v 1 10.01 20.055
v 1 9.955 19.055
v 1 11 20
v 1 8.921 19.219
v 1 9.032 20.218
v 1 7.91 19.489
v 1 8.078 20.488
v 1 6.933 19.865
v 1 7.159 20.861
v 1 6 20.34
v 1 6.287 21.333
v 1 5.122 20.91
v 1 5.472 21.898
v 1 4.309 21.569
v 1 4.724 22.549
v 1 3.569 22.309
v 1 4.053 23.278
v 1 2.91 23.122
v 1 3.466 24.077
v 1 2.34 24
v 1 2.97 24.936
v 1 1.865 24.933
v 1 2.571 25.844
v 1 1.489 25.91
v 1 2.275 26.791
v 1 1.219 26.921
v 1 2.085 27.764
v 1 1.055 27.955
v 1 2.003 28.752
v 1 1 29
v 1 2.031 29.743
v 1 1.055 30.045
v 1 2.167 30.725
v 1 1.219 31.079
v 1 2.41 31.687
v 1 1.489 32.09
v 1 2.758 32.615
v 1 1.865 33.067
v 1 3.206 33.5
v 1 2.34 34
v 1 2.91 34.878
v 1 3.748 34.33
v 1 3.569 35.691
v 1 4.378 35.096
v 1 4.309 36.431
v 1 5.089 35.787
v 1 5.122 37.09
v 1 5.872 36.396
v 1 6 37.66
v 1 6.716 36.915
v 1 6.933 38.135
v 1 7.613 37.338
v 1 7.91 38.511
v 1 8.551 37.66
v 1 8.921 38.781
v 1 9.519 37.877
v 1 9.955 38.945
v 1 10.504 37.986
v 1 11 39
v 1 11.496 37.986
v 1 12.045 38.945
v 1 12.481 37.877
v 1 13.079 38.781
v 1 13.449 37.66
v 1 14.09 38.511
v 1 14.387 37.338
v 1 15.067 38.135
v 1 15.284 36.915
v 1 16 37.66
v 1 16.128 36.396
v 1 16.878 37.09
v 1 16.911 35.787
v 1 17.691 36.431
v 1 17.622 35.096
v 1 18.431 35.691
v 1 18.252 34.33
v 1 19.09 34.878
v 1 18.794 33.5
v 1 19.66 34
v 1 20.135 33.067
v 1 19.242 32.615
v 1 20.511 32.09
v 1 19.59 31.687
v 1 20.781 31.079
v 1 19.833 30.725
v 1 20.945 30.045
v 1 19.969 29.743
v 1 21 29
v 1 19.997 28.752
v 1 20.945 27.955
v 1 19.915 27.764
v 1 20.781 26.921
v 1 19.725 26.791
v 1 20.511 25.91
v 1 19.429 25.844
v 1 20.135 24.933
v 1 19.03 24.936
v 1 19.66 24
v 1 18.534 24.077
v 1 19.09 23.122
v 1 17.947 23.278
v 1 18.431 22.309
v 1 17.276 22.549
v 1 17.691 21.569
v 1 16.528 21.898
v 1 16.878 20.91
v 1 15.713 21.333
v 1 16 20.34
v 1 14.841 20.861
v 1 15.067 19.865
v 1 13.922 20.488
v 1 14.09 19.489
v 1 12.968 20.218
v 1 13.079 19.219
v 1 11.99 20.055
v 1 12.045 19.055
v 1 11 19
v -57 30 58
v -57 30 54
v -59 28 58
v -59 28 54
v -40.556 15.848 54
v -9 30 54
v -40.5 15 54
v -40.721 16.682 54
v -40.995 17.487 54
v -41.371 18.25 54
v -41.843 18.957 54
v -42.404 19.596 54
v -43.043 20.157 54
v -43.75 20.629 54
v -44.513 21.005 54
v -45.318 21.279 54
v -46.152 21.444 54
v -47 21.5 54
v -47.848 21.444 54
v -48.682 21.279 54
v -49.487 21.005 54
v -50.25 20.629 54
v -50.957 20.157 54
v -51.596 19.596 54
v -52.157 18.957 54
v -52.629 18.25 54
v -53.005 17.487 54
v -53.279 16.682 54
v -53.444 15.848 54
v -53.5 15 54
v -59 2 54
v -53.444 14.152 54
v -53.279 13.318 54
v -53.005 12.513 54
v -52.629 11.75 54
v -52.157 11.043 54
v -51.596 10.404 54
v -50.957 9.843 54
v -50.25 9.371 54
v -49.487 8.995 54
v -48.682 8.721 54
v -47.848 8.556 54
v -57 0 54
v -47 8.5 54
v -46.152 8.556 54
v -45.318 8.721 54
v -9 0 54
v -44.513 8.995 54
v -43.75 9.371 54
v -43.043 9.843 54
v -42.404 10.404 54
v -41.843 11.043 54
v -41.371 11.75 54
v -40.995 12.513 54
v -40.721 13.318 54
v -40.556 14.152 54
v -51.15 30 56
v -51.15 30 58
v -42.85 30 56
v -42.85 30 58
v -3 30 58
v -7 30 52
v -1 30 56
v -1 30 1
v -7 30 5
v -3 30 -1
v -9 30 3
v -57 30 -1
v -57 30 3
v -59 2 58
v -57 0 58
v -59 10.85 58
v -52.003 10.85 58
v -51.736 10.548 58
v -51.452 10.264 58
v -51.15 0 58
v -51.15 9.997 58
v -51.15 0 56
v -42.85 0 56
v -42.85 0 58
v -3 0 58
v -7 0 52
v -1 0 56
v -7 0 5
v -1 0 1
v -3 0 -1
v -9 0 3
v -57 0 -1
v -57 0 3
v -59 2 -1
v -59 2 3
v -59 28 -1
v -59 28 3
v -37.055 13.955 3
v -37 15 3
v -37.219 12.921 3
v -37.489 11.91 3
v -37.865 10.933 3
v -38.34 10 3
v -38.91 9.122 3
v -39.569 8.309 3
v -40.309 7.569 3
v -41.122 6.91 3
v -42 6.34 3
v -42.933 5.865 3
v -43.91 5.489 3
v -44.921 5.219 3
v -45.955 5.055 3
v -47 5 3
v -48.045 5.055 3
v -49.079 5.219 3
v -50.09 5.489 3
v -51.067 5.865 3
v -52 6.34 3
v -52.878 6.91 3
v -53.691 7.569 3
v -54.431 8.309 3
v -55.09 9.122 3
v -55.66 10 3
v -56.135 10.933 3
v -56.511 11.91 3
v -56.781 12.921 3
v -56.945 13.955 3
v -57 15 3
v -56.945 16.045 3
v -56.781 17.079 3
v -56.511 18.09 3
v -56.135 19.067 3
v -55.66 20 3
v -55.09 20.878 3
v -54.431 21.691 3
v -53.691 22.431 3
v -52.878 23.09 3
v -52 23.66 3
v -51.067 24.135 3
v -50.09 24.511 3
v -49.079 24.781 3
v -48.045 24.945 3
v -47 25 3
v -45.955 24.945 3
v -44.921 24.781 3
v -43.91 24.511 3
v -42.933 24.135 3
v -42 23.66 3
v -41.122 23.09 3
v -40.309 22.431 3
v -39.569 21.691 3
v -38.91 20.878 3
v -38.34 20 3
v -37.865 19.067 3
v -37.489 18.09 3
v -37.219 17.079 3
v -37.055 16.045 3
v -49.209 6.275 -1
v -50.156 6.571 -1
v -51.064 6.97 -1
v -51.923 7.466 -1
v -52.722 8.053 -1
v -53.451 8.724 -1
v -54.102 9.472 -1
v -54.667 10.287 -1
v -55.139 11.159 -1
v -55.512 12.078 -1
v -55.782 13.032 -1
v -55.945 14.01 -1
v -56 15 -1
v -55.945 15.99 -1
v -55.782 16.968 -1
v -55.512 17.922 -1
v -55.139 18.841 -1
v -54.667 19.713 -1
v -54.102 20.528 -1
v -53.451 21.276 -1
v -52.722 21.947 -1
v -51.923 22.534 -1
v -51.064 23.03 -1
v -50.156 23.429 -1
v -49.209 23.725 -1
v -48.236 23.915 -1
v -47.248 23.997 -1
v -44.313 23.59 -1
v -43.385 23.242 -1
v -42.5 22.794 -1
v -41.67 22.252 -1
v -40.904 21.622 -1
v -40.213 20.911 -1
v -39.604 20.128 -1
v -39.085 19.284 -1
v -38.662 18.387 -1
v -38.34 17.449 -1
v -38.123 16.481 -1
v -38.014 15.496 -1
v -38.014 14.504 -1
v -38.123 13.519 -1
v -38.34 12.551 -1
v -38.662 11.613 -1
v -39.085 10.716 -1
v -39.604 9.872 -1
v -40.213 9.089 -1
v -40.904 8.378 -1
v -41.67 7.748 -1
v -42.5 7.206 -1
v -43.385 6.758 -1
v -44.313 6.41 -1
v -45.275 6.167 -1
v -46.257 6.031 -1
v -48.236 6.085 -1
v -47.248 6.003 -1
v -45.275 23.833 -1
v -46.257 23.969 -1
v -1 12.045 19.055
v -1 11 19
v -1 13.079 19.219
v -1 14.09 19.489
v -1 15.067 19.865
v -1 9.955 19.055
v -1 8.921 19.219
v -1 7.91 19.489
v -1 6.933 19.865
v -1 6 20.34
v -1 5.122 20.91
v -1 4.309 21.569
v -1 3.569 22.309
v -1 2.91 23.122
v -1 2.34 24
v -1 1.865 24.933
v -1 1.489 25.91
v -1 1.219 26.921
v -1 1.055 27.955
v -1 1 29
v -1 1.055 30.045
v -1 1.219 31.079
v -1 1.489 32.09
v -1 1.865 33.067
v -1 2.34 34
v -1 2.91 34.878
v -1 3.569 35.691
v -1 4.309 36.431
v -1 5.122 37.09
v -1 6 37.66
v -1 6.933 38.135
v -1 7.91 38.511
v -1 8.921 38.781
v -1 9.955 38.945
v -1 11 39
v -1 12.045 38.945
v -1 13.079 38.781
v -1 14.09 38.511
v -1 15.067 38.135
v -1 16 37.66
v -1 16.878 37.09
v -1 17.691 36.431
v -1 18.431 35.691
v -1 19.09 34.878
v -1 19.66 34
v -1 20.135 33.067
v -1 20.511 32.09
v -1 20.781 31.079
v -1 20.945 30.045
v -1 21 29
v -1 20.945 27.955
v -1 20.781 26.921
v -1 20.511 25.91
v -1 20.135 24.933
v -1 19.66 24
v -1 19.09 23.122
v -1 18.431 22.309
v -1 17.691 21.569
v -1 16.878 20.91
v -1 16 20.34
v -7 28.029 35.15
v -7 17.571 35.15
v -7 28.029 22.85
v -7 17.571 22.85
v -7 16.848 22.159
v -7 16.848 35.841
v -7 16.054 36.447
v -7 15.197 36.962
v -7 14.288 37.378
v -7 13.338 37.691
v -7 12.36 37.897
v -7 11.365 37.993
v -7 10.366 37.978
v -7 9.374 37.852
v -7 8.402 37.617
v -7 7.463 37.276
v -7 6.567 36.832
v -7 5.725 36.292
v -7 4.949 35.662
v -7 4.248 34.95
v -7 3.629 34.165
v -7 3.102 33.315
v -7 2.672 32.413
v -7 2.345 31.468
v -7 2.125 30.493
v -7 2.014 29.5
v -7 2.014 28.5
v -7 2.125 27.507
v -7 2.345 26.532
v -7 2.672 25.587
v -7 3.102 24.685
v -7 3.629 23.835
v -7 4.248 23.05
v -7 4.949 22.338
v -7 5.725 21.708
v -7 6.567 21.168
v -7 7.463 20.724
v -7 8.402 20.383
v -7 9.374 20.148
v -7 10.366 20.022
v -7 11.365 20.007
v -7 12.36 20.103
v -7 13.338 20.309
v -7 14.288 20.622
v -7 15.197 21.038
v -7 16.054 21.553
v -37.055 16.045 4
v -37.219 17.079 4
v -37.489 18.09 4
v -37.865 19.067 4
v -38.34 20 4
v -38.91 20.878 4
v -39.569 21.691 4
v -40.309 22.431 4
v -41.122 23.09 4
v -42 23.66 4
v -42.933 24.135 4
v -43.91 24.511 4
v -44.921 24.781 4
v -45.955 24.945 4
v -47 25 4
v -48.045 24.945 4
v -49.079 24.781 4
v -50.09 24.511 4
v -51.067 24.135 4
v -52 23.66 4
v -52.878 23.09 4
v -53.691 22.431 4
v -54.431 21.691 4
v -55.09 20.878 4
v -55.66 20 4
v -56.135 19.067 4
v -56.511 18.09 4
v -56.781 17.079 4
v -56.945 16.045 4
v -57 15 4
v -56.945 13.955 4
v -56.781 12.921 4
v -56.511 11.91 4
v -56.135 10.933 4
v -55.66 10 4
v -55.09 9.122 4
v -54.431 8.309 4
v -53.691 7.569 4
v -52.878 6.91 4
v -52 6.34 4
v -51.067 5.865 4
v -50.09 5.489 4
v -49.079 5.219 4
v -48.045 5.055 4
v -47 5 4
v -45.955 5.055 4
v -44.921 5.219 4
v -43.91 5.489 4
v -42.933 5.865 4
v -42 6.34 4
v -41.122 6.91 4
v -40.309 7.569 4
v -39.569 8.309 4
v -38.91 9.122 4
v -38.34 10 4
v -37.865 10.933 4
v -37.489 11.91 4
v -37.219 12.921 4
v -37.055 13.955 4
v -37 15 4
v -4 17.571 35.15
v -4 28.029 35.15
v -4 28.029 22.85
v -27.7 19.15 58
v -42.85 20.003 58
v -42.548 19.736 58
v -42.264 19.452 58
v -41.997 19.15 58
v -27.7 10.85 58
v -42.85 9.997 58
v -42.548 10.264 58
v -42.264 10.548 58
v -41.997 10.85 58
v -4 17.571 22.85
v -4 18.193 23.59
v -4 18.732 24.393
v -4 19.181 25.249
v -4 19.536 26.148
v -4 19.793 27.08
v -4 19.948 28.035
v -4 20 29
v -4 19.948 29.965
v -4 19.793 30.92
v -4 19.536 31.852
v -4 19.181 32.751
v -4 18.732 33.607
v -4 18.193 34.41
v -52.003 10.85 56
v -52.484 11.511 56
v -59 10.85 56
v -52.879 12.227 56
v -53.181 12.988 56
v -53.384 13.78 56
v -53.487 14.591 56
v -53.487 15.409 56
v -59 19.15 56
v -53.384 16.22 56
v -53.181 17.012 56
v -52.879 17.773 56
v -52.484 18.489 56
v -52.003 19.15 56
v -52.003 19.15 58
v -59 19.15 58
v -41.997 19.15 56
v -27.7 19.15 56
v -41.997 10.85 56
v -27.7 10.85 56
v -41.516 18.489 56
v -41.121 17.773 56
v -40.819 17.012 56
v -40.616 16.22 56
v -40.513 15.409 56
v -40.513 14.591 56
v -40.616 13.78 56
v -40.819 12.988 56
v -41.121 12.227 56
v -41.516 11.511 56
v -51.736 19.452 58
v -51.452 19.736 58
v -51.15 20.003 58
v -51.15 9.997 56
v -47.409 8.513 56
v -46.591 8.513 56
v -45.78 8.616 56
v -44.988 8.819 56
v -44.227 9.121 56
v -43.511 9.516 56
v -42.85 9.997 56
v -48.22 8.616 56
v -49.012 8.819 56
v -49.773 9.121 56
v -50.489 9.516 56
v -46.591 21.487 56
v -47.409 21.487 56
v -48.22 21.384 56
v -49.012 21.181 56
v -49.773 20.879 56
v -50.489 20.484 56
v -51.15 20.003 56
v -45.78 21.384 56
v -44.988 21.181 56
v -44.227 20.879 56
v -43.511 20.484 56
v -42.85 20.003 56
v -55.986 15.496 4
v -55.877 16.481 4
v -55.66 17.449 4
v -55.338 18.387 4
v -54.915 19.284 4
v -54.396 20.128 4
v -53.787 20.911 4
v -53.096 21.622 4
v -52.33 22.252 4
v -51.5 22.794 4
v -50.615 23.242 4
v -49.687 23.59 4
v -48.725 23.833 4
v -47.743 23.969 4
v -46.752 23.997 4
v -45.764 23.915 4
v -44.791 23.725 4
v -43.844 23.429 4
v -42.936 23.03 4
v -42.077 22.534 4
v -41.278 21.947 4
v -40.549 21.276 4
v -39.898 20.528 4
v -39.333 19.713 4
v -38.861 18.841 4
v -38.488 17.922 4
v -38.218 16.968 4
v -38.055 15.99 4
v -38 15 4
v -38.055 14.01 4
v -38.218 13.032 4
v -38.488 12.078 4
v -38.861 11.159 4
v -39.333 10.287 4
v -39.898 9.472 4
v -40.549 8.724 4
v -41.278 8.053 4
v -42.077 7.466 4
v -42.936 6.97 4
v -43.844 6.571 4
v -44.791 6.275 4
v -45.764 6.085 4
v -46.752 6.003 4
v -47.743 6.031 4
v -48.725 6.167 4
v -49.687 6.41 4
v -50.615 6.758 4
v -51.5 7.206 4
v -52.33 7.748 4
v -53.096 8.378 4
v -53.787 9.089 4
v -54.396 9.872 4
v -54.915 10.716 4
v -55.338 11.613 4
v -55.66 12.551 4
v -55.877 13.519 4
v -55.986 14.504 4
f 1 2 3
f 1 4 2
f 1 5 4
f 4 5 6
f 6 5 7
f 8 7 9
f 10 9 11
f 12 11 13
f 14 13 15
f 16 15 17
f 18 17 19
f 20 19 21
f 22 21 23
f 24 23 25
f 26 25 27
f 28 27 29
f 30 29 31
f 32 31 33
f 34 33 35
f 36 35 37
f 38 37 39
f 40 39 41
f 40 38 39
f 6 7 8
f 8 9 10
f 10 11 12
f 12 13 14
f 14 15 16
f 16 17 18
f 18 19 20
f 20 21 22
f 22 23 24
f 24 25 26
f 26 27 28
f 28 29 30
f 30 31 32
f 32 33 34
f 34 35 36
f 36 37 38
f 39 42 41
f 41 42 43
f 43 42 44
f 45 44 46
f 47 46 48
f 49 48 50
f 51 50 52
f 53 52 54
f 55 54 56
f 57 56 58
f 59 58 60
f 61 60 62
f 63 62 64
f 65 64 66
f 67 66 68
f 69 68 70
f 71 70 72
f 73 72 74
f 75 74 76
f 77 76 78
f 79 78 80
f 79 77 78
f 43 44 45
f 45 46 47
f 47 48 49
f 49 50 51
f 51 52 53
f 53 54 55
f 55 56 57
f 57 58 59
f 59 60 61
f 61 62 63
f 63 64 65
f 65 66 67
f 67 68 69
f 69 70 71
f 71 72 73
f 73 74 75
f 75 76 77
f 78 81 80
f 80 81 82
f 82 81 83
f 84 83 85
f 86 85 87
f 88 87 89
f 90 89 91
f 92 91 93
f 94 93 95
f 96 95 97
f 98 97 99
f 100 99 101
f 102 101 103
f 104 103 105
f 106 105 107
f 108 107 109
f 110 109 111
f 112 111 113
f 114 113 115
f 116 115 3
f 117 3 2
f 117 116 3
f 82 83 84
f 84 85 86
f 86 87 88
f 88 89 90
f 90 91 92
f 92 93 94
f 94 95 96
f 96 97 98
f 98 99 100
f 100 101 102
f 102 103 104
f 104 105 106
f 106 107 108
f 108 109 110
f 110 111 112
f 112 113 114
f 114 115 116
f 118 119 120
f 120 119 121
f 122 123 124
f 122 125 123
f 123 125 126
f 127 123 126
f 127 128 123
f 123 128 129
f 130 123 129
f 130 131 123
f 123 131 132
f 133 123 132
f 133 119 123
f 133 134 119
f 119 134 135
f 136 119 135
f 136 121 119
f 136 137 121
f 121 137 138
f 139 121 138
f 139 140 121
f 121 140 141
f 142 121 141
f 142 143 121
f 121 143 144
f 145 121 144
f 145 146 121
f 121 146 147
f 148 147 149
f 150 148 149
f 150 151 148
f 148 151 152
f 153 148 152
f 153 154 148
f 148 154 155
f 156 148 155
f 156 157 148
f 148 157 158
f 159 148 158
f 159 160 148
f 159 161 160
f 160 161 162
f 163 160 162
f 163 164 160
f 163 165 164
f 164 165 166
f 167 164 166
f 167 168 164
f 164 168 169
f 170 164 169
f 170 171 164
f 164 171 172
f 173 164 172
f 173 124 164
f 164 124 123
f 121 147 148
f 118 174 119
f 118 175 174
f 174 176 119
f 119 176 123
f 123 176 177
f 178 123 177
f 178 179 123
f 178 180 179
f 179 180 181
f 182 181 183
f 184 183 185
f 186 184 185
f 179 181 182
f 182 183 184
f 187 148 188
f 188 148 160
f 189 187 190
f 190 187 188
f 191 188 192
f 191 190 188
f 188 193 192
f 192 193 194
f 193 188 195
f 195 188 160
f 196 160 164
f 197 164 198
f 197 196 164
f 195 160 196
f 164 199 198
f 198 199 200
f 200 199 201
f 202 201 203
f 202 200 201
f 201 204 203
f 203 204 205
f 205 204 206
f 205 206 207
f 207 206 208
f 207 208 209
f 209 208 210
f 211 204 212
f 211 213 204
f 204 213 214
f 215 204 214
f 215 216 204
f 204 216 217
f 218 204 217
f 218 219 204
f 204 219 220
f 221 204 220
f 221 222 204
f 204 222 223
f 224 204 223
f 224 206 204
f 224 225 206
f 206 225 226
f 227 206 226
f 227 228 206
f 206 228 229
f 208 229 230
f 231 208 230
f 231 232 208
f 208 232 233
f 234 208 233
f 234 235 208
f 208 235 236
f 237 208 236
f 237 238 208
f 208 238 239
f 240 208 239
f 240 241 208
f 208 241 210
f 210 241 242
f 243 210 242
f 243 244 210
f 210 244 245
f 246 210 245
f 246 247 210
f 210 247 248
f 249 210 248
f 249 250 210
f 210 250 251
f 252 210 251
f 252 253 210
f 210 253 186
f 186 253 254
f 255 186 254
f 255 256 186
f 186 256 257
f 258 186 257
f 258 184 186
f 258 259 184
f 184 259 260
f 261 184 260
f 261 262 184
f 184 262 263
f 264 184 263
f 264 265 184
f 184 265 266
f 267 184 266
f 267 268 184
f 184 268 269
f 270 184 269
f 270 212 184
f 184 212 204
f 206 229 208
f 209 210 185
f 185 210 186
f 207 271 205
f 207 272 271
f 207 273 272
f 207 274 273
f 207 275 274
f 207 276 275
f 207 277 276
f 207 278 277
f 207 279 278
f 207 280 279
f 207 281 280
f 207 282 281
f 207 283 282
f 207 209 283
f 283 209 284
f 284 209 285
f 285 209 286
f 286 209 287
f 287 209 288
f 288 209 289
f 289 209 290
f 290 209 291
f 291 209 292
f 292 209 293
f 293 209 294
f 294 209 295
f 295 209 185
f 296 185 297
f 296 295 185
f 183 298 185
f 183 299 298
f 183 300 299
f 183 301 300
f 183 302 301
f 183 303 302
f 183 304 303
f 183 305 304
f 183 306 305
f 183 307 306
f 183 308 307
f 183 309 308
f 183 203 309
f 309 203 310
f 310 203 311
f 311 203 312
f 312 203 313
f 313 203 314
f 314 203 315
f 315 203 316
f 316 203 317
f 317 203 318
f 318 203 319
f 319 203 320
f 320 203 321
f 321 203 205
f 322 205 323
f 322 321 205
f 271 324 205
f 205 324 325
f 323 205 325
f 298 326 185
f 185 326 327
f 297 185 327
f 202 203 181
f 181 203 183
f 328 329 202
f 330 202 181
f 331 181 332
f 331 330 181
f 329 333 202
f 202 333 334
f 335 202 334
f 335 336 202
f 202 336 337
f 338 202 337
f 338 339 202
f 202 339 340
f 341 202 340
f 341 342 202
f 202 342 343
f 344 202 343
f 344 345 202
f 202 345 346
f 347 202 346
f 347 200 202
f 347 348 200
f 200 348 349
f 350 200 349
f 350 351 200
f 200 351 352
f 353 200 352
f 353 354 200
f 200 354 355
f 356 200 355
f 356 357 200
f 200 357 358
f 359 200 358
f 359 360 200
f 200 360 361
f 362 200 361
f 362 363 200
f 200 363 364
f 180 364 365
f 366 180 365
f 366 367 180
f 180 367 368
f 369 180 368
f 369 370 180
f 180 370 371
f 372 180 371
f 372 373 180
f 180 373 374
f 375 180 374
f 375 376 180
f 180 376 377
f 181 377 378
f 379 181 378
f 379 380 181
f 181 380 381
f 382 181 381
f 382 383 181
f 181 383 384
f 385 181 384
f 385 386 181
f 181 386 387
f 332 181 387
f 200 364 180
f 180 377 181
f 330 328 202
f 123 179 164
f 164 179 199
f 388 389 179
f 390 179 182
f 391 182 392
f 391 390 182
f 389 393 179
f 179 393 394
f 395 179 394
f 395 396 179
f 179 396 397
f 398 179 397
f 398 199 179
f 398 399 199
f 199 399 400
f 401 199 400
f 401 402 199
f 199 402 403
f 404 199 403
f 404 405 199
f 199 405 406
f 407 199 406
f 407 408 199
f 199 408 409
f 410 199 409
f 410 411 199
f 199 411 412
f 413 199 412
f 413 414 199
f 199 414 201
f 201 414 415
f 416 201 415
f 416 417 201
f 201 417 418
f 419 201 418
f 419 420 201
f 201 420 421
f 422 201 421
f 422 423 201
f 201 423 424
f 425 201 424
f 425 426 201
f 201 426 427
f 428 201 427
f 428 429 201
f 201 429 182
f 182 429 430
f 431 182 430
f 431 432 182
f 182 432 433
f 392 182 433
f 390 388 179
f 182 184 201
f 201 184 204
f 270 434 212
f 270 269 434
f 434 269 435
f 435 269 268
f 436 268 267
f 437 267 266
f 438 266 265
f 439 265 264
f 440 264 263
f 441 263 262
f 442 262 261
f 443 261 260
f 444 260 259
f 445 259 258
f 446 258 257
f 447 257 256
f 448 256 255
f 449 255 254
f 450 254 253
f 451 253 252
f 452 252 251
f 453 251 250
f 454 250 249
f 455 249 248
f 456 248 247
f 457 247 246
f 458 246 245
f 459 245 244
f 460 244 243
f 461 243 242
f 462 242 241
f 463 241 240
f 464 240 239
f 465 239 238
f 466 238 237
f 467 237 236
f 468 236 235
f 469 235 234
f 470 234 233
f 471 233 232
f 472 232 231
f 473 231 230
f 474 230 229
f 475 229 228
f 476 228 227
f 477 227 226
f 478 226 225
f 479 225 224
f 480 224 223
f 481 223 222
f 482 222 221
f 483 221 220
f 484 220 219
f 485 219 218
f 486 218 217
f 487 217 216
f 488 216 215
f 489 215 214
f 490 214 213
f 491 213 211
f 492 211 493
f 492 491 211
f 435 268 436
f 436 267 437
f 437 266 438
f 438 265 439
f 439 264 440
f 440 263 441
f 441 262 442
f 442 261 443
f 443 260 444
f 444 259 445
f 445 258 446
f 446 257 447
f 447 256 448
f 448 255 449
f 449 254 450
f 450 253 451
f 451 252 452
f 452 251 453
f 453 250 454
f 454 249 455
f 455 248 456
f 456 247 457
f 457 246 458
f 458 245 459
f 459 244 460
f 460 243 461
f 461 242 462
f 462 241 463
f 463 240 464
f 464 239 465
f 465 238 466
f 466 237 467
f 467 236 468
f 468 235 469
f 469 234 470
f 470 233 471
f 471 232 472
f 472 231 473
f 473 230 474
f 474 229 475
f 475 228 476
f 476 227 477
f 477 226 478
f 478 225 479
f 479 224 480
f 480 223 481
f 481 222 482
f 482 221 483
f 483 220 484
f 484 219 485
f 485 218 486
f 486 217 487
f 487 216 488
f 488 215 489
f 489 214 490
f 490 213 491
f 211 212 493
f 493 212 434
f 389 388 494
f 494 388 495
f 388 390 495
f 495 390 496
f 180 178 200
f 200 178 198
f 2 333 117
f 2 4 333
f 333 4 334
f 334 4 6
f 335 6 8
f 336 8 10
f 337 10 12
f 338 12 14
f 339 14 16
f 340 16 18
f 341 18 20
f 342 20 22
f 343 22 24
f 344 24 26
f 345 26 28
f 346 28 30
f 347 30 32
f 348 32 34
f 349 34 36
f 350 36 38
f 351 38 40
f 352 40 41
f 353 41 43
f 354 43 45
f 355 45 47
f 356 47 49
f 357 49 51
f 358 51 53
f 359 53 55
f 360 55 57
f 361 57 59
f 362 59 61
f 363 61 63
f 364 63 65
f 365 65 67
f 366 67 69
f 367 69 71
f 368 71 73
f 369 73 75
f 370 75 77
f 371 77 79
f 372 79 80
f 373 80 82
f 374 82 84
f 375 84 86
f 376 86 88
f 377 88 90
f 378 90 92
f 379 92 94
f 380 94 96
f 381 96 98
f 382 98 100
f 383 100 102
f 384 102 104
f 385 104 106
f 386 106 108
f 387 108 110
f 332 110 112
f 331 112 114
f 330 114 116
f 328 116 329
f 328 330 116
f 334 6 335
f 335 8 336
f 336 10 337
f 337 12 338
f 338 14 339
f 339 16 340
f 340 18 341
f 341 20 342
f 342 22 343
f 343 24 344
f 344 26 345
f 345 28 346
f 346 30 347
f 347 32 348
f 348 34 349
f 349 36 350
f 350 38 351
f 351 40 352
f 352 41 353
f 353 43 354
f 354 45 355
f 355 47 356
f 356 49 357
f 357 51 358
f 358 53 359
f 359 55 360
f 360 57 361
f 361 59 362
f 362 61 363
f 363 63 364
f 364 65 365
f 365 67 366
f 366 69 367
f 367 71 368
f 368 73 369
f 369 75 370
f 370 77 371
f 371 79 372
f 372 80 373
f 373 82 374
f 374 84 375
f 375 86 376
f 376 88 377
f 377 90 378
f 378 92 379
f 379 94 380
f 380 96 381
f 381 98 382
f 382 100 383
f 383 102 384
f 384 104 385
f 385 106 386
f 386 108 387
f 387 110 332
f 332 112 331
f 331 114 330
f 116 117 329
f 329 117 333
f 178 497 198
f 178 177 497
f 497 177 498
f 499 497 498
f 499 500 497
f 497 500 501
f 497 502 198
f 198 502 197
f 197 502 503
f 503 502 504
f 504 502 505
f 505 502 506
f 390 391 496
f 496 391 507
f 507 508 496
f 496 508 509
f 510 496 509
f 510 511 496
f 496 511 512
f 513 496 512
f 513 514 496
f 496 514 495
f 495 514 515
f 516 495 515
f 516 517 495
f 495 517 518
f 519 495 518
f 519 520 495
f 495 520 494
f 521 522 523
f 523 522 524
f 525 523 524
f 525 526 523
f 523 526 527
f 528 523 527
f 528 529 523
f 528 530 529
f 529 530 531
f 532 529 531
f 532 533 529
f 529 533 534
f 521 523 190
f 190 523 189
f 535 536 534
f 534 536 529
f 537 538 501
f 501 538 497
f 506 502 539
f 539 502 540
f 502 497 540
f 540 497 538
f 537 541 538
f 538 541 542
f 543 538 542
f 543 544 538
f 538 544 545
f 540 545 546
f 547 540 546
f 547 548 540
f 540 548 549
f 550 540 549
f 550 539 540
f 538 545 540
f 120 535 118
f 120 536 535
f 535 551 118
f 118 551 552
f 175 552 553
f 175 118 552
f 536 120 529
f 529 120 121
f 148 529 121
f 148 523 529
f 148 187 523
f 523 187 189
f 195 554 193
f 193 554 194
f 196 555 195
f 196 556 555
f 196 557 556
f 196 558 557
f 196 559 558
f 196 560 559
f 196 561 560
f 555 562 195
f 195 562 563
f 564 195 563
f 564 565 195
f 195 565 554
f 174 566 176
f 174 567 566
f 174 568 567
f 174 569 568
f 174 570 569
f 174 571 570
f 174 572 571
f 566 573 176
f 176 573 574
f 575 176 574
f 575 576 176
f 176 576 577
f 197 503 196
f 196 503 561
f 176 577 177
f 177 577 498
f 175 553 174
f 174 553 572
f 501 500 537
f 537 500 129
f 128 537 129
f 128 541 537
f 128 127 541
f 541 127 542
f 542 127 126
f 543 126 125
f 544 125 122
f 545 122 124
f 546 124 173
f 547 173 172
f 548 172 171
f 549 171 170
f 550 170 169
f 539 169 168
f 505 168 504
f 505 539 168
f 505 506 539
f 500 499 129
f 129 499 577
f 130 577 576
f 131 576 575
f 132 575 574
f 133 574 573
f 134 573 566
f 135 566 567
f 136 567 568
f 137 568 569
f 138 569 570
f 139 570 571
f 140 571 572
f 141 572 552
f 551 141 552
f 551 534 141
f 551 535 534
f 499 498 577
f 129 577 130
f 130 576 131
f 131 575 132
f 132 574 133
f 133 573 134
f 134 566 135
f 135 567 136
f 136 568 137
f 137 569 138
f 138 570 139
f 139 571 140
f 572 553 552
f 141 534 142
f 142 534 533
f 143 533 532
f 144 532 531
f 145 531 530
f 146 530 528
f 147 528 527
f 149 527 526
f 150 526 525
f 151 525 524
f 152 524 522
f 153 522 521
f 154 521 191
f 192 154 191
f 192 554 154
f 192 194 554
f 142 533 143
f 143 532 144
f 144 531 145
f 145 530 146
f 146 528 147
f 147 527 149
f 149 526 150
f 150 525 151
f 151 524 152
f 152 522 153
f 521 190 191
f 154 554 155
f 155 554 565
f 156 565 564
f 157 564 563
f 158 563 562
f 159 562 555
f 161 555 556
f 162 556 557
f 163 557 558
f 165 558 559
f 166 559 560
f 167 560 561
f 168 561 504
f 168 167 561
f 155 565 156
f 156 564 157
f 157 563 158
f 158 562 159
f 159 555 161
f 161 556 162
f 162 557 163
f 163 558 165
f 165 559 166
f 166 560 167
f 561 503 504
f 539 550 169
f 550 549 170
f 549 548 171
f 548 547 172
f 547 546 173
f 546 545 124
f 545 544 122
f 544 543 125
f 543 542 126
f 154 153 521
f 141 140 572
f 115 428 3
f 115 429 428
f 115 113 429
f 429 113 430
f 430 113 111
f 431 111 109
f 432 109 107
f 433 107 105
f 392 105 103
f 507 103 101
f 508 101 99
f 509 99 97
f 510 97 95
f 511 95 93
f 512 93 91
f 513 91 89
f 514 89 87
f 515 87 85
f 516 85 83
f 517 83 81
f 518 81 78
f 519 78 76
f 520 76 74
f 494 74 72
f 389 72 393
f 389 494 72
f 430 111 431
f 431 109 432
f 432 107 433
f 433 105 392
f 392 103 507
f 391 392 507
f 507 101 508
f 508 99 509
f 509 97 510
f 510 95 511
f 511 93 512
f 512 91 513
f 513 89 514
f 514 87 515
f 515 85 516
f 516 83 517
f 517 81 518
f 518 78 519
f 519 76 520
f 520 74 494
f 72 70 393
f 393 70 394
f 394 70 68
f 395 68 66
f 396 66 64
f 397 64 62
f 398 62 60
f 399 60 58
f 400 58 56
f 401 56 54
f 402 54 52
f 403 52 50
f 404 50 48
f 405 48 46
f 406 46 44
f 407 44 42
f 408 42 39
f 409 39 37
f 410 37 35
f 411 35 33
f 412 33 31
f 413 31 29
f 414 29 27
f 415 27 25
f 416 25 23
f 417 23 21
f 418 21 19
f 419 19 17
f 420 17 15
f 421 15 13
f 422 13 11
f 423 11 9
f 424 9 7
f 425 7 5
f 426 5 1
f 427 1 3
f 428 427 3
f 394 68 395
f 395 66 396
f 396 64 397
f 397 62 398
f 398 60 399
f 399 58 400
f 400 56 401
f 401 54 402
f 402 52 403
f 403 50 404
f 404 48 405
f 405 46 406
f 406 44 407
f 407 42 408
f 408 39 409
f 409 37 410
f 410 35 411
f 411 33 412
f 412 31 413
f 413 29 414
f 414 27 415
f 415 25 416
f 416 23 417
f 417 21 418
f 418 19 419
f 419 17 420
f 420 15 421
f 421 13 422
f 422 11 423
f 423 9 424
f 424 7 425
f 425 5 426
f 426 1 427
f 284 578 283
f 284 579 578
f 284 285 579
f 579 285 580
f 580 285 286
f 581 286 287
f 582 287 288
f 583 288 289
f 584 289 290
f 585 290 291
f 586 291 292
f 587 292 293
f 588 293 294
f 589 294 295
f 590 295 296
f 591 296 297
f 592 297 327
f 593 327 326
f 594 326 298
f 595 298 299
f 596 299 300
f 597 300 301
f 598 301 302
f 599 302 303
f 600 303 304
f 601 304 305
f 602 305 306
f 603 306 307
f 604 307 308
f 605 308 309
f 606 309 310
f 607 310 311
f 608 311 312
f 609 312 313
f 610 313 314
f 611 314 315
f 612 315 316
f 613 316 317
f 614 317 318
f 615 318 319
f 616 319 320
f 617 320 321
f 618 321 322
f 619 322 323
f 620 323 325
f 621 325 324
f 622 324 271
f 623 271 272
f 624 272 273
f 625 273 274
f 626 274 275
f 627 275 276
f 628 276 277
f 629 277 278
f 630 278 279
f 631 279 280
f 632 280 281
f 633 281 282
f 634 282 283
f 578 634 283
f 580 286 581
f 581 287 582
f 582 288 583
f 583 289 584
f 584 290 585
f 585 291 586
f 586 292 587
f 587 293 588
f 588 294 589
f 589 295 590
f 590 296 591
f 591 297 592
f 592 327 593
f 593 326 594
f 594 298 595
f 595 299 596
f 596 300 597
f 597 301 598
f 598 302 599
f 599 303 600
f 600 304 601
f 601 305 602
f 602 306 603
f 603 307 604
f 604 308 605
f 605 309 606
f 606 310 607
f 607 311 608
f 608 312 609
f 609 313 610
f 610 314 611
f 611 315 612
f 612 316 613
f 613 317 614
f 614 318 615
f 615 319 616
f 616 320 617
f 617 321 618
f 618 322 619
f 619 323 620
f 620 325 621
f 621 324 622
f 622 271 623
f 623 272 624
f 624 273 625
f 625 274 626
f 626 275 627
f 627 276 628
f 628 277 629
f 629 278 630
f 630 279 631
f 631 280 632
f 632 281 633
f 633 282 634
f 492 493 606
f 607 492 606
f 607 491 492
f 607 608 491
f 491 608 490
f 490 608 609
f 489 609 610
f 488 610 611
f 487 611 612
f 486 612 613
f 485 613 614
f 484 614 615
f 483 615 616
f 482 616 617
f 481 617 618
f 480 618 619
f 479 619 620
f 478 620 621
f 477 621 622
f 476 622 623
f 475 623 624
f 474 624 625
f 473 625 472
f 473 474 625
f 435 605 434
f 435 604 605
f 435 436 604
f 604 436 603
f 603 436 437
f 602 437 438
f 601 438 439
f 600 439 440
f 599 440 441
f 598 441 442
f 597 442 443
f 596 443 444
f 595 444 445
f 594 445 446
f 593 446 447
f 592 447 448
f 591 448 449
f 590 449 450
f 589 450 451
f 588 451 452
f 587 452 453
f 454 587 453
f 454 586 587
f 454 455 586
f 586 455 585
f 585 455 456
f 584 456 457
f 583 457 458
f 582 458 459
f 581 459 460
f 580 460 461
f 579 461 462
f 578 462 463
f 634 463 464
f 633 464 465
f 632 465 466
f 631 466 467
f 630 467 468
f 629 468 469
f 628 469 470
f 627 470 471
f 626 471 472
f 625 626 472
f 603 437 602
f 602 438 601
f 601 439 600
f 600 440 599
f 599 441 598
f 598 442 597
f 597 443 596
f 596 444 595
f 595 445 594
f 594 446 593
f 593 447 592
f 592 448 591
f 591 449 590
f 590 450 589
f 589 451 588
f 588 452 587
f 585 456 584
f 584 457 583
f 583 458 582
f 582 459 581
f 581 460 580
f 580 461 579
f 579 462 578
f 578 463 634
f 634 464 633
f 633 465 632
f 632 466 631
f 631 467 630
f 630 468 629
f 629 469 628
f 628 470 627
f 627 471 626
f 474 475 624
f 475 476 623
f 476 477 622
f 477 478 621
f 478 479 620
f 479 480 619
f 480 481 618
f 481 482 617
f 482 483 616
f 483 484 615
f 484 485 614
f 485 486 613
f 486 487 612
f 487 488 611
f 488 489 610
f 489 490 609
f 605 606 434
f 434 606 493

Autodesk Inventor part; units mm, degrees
ref_plane "YZ Plane" through (0, 0, 0) normal (1, 0, 0) x (0, 1, 0)
ref_plane "XZ Plane" through (0, 0, 0) normal (0, 1, 0) x (-1, 0, 0)
ref_plane "XY Plane" through (0, 0, 0) normal (0, 0, 1) x (1, 0, 0)
sketch "Boceto1" plane through (0, 0, 0) normal (0, 1, 0) x (-1, 0, 0)
  line L0 (0, 0) -> (4, 0)
  line L1 (4, 0) -> (4, 58)
  line L2 (4, 58) -> (0, 58)
  line L3 (0, 58) -> (0, 0)
  line L4 (4, 58) -> (59, 58)
  line L5 (59, 58) -> (59, 54)
  line L6 (59, 54) -> (4, 54)
  line L7 (4, 54) -> (4, 58)
  line L8 (4, 0) -> (59, 0)
  line L9 (59, 0) -> (59, 4)
  line L10 (59, 4) -> (4, 4)
  line L11 (4, 4) -> (4, 0)
  dimension "d4" = 58
  dimension "d5" = 55
  dimension "d6" = 4
  dimension "d7" = 55
  dimension "d8" = 4
  dimension "d54" = 4
extrude "Extrusión1" add sketch "Boceto1" along normal blind 30
sketch "Boceto3" plane through (-59, 0, 4) normal (0, 0, 1) x (1, 0, 0)
  line L0 (0, 0) -> (0, 30) projected
  circle A0 centre (12, 15) radius 9
  point P0 (59, 0)
  point P1 (0, 15)
  dimension "d19" = 18
  dimension "d20" = 12
extrude "Extrusión2" cut sketch "Boceto3" against normal blind 8 and the other way blind 2
sketch "Boceto5" plane through (0, 0, 58) normal (1, 0, 0) x (0, 0, -1)
  circle A0 centre (29, 11) radius 9
  line L0 (0, 30) -> (58, 30) projected
  line L1 (0, 0) -> (58, 0) projected
  line L2 (58, 0) -> (58, 30) projected
  line L3 (0, 0) -> (0, 30) projected
  point P0 (29, 30)
  point P1 (29, 30)
  dimension "d28" = 18
  dimension "d73" = 11
extrude "Extrusión4" cut sketch "Boceto5" against normal blind 20 contours A0
sketch "Boceto6" plane through (-4, 0, 4) normal (-1, 0, 0) x (0, 0, 1)
  circle A0 centre (25, 11) radius 9 projected
  line L0 (0, 30) -> (0, 0) projected
  line L1 (0, 0) -> (50, 0) projected
  line L2 (50, 0) -> (50, 30) projected
  line L3 (0, 30) -> (50, 30) projected
  point P0 (-4, 0)
extrude "Extrusión5" add sketch "Boceto6" along normal blind 4
sketch "Boceto8" plane through (-59, 0, 58) normal (0, 0, 1) x (1, 0, 0)
  circle A0 centre (12, 15) radius 6.5
  line L0 (0, 0) -> (0, 30) projected
  line L1 (0, 9) -> (0, 16)
  point P0 (0, 15)
  dimension "d40" = 13
  dimension "d42" = 12
extrude "Extrusión7" cut sketch "Boceto8" against normal blind 5
sketch "Boceto9" plane through (-59, 0, 58) normal (0, 0, 1) x (1, 0, 0)
  circle A0 centre (12, 15) radius 6.5 projected
  line L0 (0, 19.15) -> (31.3, 19.15)
  line L1 (31.3, 19.15) -> (31.3, 10.85)
  line L2 (31.3, 10.85) -> (0, 10.85)
  line L3 (0, 10.85) -> (0, 19.15)
  line L4 (0, 0) -> (0, 30) projected
  point P0 (0, 15)
  dimension "d44" = 19.3
  dimension "d45" = 8.3
sketch "Boceto10" plane through (-59, 0, 58) normal (0, 0, 1) x (1, 0, 0)
  circle A0 centre (12, 15) radius 6.5 projected
  line L0 (0, 0) -> (0, 30) projected
  line L1 (7.85, 33.3) -> (16.15, 33.3)
  line L2 (16.15, 33.3) -> (16.15, -3.3)
  line L3 (16.15, -3.3) -> (7.85, -3.3)
  line L4 (7.85, -3.3) -> (7.85, 33.3)
  point P0 (7.85, 15)
  point P1 (0, 15)
  point P2 (12, 33.3)
  dimension "d48" = 8.3
  dimension "d49" = 36.6
extrude "Extrusión8" cut sketch "Boceto10" against normal blind 2 contours L2 A0 L4 | A0 L4 L1 L2 | L2 L3 L4 A0
extrude "Extrusión9" cut sketch "Boceto9" against normal blind 2 contours A0 L2 L0 | A0 L0 L1 L2 | A0 L2 L3 L0
sketch "Boceto12" plane through (-8, 0, 4) normal (-1, 0, 0) x (0, 0, 1)
  circle A0 centre (25, 11) radius 9 projected
  line L0 (18.85, 4.429) -> (31.15, 4.429)
  line L1 (31.15, 4.429) -> (31.15, 28.029)
  line L2 (31.15, 28.029) -> (18.85, 28.029)
  line L3 (18.85, 28.029) -> (18.85, 4.429)
  point P0 (-4, 0)
  point P1 (25, 4.429)
  dimension "d76" = 12.3
  dimension "d77" = 23.6
extrude "Extrusión11" cut sketch "Boceto12" against normal blind 4 contours L3 A0 L1 L0 | L3 L2 L1 A0
sketch "Boceto13" plane through (0, 0, 58) normal (1, 0, 0) x (0, 0, -1)
  circle A0 centre (29, 11) radius 9 projected
  line L0 (0, 0) -> (58, 0) projected
  line L1 (58, 0) -> (58, 30) projected
  line L2 (0, 30) -> (58, 30) projected
  line L3 (0, 0) -> (0, 30) projected
  circle A1 centre (29, 11) radius 10
extrude "Extrusión12" cut sketch "Boceto13" against normal blind 1 contours L3 L2 L1 L0
chamfer "Chaflán5" distance 2 angle 45 1 edges at (-1, 15, 58)
sketch "Boceto14" plane through (-8, 0, 4) normal (-1, 0, 0) x (0, 0, 1)
  line L0 (0, 0) -> (0, 30) projected
  line L1 (0, 0) -> (50, 0) projected
  line L2 (50, 30) -> (50, 0) projected
  line L3 (50, 30) -> (0, 30) projected
  line L4 (18.85, 17.571) -> (18.85, 28.029) projected
  line L5 (18.85, 28.029) -> (31.15, 28.029) projected
  line L6 (31.15, 28.029) -> (31.15, 17.571) projected
  arc A0 (18.85, 17.571) -> (31.15, 17.571) centre (25, 11) ccw projected
  point P0 (-4, 0)
extrude "Extrusión13" cut sketch "Boceto14" against normal blind 1
sketch "Boceto16" plane through (-59, 0, 0) normal (0, 0, -1) x (-1, 0, 0)
  line L0 (-58, 30) -> (-58, 0) projected
  line L1 (-58, 0) -> (0, 0) projected
  line L2 (0, 0) -> (0, 30) projected
  line L3 (-58, 30) -> (0, 30) projected
  circle A0 centre (-12, 15) radius 9 projected
  point P0 (-59, 0)
extrude "Extrusión14" add sketch "Boceto16" along normal blind 1
sketch "Boceto18" plane through (-59, 0, 4) normal (0, 0, 1) x (1, 0, 0)
  line L0 (0, 30) -> (52, 30) projected
  line L1 (0, 0) -> (0, 30) projected
  line L2 (0, 0) -> (52, 0) projected
  line L3 (52, 0) -> (52, 30) projected
  circle A0 centre (12, 15) radius 9 projected
  circle A1 centre (12, 15) radius 10
  point P0 (59, 0)
extrude "Extrusión16" cut sketch "Boceto18" against normal blind 1 contours L0 L3 L2 L1
chamfer "Chaflán8" distance 2 angle 45 2 edges at (-7, 15, 3) (-7, 15, 54)
chamfer "Chaflán9" distance 2 angle 45 1 edges at (-1, 15, -1)
chamfer "Chaflán10" distance 2 angle 45 4 edges at (-59, 30, 1) (-59, 0, 1) (-59, 0, 56) (-59, 30, 56)
sketch "Boceto19" plane through (0, 11, 29) normal (1, 0, 0) x (0, 0, -1)
  circle A0 centre (0, 0) radius 10 projected
  circle A1 centre (0, 0) radius 9 projected
  point P0 (29, -11)
extrude "Extrusión17" add sketch "Boceto19" along normal blind 1
properties part number "Enlace1"
